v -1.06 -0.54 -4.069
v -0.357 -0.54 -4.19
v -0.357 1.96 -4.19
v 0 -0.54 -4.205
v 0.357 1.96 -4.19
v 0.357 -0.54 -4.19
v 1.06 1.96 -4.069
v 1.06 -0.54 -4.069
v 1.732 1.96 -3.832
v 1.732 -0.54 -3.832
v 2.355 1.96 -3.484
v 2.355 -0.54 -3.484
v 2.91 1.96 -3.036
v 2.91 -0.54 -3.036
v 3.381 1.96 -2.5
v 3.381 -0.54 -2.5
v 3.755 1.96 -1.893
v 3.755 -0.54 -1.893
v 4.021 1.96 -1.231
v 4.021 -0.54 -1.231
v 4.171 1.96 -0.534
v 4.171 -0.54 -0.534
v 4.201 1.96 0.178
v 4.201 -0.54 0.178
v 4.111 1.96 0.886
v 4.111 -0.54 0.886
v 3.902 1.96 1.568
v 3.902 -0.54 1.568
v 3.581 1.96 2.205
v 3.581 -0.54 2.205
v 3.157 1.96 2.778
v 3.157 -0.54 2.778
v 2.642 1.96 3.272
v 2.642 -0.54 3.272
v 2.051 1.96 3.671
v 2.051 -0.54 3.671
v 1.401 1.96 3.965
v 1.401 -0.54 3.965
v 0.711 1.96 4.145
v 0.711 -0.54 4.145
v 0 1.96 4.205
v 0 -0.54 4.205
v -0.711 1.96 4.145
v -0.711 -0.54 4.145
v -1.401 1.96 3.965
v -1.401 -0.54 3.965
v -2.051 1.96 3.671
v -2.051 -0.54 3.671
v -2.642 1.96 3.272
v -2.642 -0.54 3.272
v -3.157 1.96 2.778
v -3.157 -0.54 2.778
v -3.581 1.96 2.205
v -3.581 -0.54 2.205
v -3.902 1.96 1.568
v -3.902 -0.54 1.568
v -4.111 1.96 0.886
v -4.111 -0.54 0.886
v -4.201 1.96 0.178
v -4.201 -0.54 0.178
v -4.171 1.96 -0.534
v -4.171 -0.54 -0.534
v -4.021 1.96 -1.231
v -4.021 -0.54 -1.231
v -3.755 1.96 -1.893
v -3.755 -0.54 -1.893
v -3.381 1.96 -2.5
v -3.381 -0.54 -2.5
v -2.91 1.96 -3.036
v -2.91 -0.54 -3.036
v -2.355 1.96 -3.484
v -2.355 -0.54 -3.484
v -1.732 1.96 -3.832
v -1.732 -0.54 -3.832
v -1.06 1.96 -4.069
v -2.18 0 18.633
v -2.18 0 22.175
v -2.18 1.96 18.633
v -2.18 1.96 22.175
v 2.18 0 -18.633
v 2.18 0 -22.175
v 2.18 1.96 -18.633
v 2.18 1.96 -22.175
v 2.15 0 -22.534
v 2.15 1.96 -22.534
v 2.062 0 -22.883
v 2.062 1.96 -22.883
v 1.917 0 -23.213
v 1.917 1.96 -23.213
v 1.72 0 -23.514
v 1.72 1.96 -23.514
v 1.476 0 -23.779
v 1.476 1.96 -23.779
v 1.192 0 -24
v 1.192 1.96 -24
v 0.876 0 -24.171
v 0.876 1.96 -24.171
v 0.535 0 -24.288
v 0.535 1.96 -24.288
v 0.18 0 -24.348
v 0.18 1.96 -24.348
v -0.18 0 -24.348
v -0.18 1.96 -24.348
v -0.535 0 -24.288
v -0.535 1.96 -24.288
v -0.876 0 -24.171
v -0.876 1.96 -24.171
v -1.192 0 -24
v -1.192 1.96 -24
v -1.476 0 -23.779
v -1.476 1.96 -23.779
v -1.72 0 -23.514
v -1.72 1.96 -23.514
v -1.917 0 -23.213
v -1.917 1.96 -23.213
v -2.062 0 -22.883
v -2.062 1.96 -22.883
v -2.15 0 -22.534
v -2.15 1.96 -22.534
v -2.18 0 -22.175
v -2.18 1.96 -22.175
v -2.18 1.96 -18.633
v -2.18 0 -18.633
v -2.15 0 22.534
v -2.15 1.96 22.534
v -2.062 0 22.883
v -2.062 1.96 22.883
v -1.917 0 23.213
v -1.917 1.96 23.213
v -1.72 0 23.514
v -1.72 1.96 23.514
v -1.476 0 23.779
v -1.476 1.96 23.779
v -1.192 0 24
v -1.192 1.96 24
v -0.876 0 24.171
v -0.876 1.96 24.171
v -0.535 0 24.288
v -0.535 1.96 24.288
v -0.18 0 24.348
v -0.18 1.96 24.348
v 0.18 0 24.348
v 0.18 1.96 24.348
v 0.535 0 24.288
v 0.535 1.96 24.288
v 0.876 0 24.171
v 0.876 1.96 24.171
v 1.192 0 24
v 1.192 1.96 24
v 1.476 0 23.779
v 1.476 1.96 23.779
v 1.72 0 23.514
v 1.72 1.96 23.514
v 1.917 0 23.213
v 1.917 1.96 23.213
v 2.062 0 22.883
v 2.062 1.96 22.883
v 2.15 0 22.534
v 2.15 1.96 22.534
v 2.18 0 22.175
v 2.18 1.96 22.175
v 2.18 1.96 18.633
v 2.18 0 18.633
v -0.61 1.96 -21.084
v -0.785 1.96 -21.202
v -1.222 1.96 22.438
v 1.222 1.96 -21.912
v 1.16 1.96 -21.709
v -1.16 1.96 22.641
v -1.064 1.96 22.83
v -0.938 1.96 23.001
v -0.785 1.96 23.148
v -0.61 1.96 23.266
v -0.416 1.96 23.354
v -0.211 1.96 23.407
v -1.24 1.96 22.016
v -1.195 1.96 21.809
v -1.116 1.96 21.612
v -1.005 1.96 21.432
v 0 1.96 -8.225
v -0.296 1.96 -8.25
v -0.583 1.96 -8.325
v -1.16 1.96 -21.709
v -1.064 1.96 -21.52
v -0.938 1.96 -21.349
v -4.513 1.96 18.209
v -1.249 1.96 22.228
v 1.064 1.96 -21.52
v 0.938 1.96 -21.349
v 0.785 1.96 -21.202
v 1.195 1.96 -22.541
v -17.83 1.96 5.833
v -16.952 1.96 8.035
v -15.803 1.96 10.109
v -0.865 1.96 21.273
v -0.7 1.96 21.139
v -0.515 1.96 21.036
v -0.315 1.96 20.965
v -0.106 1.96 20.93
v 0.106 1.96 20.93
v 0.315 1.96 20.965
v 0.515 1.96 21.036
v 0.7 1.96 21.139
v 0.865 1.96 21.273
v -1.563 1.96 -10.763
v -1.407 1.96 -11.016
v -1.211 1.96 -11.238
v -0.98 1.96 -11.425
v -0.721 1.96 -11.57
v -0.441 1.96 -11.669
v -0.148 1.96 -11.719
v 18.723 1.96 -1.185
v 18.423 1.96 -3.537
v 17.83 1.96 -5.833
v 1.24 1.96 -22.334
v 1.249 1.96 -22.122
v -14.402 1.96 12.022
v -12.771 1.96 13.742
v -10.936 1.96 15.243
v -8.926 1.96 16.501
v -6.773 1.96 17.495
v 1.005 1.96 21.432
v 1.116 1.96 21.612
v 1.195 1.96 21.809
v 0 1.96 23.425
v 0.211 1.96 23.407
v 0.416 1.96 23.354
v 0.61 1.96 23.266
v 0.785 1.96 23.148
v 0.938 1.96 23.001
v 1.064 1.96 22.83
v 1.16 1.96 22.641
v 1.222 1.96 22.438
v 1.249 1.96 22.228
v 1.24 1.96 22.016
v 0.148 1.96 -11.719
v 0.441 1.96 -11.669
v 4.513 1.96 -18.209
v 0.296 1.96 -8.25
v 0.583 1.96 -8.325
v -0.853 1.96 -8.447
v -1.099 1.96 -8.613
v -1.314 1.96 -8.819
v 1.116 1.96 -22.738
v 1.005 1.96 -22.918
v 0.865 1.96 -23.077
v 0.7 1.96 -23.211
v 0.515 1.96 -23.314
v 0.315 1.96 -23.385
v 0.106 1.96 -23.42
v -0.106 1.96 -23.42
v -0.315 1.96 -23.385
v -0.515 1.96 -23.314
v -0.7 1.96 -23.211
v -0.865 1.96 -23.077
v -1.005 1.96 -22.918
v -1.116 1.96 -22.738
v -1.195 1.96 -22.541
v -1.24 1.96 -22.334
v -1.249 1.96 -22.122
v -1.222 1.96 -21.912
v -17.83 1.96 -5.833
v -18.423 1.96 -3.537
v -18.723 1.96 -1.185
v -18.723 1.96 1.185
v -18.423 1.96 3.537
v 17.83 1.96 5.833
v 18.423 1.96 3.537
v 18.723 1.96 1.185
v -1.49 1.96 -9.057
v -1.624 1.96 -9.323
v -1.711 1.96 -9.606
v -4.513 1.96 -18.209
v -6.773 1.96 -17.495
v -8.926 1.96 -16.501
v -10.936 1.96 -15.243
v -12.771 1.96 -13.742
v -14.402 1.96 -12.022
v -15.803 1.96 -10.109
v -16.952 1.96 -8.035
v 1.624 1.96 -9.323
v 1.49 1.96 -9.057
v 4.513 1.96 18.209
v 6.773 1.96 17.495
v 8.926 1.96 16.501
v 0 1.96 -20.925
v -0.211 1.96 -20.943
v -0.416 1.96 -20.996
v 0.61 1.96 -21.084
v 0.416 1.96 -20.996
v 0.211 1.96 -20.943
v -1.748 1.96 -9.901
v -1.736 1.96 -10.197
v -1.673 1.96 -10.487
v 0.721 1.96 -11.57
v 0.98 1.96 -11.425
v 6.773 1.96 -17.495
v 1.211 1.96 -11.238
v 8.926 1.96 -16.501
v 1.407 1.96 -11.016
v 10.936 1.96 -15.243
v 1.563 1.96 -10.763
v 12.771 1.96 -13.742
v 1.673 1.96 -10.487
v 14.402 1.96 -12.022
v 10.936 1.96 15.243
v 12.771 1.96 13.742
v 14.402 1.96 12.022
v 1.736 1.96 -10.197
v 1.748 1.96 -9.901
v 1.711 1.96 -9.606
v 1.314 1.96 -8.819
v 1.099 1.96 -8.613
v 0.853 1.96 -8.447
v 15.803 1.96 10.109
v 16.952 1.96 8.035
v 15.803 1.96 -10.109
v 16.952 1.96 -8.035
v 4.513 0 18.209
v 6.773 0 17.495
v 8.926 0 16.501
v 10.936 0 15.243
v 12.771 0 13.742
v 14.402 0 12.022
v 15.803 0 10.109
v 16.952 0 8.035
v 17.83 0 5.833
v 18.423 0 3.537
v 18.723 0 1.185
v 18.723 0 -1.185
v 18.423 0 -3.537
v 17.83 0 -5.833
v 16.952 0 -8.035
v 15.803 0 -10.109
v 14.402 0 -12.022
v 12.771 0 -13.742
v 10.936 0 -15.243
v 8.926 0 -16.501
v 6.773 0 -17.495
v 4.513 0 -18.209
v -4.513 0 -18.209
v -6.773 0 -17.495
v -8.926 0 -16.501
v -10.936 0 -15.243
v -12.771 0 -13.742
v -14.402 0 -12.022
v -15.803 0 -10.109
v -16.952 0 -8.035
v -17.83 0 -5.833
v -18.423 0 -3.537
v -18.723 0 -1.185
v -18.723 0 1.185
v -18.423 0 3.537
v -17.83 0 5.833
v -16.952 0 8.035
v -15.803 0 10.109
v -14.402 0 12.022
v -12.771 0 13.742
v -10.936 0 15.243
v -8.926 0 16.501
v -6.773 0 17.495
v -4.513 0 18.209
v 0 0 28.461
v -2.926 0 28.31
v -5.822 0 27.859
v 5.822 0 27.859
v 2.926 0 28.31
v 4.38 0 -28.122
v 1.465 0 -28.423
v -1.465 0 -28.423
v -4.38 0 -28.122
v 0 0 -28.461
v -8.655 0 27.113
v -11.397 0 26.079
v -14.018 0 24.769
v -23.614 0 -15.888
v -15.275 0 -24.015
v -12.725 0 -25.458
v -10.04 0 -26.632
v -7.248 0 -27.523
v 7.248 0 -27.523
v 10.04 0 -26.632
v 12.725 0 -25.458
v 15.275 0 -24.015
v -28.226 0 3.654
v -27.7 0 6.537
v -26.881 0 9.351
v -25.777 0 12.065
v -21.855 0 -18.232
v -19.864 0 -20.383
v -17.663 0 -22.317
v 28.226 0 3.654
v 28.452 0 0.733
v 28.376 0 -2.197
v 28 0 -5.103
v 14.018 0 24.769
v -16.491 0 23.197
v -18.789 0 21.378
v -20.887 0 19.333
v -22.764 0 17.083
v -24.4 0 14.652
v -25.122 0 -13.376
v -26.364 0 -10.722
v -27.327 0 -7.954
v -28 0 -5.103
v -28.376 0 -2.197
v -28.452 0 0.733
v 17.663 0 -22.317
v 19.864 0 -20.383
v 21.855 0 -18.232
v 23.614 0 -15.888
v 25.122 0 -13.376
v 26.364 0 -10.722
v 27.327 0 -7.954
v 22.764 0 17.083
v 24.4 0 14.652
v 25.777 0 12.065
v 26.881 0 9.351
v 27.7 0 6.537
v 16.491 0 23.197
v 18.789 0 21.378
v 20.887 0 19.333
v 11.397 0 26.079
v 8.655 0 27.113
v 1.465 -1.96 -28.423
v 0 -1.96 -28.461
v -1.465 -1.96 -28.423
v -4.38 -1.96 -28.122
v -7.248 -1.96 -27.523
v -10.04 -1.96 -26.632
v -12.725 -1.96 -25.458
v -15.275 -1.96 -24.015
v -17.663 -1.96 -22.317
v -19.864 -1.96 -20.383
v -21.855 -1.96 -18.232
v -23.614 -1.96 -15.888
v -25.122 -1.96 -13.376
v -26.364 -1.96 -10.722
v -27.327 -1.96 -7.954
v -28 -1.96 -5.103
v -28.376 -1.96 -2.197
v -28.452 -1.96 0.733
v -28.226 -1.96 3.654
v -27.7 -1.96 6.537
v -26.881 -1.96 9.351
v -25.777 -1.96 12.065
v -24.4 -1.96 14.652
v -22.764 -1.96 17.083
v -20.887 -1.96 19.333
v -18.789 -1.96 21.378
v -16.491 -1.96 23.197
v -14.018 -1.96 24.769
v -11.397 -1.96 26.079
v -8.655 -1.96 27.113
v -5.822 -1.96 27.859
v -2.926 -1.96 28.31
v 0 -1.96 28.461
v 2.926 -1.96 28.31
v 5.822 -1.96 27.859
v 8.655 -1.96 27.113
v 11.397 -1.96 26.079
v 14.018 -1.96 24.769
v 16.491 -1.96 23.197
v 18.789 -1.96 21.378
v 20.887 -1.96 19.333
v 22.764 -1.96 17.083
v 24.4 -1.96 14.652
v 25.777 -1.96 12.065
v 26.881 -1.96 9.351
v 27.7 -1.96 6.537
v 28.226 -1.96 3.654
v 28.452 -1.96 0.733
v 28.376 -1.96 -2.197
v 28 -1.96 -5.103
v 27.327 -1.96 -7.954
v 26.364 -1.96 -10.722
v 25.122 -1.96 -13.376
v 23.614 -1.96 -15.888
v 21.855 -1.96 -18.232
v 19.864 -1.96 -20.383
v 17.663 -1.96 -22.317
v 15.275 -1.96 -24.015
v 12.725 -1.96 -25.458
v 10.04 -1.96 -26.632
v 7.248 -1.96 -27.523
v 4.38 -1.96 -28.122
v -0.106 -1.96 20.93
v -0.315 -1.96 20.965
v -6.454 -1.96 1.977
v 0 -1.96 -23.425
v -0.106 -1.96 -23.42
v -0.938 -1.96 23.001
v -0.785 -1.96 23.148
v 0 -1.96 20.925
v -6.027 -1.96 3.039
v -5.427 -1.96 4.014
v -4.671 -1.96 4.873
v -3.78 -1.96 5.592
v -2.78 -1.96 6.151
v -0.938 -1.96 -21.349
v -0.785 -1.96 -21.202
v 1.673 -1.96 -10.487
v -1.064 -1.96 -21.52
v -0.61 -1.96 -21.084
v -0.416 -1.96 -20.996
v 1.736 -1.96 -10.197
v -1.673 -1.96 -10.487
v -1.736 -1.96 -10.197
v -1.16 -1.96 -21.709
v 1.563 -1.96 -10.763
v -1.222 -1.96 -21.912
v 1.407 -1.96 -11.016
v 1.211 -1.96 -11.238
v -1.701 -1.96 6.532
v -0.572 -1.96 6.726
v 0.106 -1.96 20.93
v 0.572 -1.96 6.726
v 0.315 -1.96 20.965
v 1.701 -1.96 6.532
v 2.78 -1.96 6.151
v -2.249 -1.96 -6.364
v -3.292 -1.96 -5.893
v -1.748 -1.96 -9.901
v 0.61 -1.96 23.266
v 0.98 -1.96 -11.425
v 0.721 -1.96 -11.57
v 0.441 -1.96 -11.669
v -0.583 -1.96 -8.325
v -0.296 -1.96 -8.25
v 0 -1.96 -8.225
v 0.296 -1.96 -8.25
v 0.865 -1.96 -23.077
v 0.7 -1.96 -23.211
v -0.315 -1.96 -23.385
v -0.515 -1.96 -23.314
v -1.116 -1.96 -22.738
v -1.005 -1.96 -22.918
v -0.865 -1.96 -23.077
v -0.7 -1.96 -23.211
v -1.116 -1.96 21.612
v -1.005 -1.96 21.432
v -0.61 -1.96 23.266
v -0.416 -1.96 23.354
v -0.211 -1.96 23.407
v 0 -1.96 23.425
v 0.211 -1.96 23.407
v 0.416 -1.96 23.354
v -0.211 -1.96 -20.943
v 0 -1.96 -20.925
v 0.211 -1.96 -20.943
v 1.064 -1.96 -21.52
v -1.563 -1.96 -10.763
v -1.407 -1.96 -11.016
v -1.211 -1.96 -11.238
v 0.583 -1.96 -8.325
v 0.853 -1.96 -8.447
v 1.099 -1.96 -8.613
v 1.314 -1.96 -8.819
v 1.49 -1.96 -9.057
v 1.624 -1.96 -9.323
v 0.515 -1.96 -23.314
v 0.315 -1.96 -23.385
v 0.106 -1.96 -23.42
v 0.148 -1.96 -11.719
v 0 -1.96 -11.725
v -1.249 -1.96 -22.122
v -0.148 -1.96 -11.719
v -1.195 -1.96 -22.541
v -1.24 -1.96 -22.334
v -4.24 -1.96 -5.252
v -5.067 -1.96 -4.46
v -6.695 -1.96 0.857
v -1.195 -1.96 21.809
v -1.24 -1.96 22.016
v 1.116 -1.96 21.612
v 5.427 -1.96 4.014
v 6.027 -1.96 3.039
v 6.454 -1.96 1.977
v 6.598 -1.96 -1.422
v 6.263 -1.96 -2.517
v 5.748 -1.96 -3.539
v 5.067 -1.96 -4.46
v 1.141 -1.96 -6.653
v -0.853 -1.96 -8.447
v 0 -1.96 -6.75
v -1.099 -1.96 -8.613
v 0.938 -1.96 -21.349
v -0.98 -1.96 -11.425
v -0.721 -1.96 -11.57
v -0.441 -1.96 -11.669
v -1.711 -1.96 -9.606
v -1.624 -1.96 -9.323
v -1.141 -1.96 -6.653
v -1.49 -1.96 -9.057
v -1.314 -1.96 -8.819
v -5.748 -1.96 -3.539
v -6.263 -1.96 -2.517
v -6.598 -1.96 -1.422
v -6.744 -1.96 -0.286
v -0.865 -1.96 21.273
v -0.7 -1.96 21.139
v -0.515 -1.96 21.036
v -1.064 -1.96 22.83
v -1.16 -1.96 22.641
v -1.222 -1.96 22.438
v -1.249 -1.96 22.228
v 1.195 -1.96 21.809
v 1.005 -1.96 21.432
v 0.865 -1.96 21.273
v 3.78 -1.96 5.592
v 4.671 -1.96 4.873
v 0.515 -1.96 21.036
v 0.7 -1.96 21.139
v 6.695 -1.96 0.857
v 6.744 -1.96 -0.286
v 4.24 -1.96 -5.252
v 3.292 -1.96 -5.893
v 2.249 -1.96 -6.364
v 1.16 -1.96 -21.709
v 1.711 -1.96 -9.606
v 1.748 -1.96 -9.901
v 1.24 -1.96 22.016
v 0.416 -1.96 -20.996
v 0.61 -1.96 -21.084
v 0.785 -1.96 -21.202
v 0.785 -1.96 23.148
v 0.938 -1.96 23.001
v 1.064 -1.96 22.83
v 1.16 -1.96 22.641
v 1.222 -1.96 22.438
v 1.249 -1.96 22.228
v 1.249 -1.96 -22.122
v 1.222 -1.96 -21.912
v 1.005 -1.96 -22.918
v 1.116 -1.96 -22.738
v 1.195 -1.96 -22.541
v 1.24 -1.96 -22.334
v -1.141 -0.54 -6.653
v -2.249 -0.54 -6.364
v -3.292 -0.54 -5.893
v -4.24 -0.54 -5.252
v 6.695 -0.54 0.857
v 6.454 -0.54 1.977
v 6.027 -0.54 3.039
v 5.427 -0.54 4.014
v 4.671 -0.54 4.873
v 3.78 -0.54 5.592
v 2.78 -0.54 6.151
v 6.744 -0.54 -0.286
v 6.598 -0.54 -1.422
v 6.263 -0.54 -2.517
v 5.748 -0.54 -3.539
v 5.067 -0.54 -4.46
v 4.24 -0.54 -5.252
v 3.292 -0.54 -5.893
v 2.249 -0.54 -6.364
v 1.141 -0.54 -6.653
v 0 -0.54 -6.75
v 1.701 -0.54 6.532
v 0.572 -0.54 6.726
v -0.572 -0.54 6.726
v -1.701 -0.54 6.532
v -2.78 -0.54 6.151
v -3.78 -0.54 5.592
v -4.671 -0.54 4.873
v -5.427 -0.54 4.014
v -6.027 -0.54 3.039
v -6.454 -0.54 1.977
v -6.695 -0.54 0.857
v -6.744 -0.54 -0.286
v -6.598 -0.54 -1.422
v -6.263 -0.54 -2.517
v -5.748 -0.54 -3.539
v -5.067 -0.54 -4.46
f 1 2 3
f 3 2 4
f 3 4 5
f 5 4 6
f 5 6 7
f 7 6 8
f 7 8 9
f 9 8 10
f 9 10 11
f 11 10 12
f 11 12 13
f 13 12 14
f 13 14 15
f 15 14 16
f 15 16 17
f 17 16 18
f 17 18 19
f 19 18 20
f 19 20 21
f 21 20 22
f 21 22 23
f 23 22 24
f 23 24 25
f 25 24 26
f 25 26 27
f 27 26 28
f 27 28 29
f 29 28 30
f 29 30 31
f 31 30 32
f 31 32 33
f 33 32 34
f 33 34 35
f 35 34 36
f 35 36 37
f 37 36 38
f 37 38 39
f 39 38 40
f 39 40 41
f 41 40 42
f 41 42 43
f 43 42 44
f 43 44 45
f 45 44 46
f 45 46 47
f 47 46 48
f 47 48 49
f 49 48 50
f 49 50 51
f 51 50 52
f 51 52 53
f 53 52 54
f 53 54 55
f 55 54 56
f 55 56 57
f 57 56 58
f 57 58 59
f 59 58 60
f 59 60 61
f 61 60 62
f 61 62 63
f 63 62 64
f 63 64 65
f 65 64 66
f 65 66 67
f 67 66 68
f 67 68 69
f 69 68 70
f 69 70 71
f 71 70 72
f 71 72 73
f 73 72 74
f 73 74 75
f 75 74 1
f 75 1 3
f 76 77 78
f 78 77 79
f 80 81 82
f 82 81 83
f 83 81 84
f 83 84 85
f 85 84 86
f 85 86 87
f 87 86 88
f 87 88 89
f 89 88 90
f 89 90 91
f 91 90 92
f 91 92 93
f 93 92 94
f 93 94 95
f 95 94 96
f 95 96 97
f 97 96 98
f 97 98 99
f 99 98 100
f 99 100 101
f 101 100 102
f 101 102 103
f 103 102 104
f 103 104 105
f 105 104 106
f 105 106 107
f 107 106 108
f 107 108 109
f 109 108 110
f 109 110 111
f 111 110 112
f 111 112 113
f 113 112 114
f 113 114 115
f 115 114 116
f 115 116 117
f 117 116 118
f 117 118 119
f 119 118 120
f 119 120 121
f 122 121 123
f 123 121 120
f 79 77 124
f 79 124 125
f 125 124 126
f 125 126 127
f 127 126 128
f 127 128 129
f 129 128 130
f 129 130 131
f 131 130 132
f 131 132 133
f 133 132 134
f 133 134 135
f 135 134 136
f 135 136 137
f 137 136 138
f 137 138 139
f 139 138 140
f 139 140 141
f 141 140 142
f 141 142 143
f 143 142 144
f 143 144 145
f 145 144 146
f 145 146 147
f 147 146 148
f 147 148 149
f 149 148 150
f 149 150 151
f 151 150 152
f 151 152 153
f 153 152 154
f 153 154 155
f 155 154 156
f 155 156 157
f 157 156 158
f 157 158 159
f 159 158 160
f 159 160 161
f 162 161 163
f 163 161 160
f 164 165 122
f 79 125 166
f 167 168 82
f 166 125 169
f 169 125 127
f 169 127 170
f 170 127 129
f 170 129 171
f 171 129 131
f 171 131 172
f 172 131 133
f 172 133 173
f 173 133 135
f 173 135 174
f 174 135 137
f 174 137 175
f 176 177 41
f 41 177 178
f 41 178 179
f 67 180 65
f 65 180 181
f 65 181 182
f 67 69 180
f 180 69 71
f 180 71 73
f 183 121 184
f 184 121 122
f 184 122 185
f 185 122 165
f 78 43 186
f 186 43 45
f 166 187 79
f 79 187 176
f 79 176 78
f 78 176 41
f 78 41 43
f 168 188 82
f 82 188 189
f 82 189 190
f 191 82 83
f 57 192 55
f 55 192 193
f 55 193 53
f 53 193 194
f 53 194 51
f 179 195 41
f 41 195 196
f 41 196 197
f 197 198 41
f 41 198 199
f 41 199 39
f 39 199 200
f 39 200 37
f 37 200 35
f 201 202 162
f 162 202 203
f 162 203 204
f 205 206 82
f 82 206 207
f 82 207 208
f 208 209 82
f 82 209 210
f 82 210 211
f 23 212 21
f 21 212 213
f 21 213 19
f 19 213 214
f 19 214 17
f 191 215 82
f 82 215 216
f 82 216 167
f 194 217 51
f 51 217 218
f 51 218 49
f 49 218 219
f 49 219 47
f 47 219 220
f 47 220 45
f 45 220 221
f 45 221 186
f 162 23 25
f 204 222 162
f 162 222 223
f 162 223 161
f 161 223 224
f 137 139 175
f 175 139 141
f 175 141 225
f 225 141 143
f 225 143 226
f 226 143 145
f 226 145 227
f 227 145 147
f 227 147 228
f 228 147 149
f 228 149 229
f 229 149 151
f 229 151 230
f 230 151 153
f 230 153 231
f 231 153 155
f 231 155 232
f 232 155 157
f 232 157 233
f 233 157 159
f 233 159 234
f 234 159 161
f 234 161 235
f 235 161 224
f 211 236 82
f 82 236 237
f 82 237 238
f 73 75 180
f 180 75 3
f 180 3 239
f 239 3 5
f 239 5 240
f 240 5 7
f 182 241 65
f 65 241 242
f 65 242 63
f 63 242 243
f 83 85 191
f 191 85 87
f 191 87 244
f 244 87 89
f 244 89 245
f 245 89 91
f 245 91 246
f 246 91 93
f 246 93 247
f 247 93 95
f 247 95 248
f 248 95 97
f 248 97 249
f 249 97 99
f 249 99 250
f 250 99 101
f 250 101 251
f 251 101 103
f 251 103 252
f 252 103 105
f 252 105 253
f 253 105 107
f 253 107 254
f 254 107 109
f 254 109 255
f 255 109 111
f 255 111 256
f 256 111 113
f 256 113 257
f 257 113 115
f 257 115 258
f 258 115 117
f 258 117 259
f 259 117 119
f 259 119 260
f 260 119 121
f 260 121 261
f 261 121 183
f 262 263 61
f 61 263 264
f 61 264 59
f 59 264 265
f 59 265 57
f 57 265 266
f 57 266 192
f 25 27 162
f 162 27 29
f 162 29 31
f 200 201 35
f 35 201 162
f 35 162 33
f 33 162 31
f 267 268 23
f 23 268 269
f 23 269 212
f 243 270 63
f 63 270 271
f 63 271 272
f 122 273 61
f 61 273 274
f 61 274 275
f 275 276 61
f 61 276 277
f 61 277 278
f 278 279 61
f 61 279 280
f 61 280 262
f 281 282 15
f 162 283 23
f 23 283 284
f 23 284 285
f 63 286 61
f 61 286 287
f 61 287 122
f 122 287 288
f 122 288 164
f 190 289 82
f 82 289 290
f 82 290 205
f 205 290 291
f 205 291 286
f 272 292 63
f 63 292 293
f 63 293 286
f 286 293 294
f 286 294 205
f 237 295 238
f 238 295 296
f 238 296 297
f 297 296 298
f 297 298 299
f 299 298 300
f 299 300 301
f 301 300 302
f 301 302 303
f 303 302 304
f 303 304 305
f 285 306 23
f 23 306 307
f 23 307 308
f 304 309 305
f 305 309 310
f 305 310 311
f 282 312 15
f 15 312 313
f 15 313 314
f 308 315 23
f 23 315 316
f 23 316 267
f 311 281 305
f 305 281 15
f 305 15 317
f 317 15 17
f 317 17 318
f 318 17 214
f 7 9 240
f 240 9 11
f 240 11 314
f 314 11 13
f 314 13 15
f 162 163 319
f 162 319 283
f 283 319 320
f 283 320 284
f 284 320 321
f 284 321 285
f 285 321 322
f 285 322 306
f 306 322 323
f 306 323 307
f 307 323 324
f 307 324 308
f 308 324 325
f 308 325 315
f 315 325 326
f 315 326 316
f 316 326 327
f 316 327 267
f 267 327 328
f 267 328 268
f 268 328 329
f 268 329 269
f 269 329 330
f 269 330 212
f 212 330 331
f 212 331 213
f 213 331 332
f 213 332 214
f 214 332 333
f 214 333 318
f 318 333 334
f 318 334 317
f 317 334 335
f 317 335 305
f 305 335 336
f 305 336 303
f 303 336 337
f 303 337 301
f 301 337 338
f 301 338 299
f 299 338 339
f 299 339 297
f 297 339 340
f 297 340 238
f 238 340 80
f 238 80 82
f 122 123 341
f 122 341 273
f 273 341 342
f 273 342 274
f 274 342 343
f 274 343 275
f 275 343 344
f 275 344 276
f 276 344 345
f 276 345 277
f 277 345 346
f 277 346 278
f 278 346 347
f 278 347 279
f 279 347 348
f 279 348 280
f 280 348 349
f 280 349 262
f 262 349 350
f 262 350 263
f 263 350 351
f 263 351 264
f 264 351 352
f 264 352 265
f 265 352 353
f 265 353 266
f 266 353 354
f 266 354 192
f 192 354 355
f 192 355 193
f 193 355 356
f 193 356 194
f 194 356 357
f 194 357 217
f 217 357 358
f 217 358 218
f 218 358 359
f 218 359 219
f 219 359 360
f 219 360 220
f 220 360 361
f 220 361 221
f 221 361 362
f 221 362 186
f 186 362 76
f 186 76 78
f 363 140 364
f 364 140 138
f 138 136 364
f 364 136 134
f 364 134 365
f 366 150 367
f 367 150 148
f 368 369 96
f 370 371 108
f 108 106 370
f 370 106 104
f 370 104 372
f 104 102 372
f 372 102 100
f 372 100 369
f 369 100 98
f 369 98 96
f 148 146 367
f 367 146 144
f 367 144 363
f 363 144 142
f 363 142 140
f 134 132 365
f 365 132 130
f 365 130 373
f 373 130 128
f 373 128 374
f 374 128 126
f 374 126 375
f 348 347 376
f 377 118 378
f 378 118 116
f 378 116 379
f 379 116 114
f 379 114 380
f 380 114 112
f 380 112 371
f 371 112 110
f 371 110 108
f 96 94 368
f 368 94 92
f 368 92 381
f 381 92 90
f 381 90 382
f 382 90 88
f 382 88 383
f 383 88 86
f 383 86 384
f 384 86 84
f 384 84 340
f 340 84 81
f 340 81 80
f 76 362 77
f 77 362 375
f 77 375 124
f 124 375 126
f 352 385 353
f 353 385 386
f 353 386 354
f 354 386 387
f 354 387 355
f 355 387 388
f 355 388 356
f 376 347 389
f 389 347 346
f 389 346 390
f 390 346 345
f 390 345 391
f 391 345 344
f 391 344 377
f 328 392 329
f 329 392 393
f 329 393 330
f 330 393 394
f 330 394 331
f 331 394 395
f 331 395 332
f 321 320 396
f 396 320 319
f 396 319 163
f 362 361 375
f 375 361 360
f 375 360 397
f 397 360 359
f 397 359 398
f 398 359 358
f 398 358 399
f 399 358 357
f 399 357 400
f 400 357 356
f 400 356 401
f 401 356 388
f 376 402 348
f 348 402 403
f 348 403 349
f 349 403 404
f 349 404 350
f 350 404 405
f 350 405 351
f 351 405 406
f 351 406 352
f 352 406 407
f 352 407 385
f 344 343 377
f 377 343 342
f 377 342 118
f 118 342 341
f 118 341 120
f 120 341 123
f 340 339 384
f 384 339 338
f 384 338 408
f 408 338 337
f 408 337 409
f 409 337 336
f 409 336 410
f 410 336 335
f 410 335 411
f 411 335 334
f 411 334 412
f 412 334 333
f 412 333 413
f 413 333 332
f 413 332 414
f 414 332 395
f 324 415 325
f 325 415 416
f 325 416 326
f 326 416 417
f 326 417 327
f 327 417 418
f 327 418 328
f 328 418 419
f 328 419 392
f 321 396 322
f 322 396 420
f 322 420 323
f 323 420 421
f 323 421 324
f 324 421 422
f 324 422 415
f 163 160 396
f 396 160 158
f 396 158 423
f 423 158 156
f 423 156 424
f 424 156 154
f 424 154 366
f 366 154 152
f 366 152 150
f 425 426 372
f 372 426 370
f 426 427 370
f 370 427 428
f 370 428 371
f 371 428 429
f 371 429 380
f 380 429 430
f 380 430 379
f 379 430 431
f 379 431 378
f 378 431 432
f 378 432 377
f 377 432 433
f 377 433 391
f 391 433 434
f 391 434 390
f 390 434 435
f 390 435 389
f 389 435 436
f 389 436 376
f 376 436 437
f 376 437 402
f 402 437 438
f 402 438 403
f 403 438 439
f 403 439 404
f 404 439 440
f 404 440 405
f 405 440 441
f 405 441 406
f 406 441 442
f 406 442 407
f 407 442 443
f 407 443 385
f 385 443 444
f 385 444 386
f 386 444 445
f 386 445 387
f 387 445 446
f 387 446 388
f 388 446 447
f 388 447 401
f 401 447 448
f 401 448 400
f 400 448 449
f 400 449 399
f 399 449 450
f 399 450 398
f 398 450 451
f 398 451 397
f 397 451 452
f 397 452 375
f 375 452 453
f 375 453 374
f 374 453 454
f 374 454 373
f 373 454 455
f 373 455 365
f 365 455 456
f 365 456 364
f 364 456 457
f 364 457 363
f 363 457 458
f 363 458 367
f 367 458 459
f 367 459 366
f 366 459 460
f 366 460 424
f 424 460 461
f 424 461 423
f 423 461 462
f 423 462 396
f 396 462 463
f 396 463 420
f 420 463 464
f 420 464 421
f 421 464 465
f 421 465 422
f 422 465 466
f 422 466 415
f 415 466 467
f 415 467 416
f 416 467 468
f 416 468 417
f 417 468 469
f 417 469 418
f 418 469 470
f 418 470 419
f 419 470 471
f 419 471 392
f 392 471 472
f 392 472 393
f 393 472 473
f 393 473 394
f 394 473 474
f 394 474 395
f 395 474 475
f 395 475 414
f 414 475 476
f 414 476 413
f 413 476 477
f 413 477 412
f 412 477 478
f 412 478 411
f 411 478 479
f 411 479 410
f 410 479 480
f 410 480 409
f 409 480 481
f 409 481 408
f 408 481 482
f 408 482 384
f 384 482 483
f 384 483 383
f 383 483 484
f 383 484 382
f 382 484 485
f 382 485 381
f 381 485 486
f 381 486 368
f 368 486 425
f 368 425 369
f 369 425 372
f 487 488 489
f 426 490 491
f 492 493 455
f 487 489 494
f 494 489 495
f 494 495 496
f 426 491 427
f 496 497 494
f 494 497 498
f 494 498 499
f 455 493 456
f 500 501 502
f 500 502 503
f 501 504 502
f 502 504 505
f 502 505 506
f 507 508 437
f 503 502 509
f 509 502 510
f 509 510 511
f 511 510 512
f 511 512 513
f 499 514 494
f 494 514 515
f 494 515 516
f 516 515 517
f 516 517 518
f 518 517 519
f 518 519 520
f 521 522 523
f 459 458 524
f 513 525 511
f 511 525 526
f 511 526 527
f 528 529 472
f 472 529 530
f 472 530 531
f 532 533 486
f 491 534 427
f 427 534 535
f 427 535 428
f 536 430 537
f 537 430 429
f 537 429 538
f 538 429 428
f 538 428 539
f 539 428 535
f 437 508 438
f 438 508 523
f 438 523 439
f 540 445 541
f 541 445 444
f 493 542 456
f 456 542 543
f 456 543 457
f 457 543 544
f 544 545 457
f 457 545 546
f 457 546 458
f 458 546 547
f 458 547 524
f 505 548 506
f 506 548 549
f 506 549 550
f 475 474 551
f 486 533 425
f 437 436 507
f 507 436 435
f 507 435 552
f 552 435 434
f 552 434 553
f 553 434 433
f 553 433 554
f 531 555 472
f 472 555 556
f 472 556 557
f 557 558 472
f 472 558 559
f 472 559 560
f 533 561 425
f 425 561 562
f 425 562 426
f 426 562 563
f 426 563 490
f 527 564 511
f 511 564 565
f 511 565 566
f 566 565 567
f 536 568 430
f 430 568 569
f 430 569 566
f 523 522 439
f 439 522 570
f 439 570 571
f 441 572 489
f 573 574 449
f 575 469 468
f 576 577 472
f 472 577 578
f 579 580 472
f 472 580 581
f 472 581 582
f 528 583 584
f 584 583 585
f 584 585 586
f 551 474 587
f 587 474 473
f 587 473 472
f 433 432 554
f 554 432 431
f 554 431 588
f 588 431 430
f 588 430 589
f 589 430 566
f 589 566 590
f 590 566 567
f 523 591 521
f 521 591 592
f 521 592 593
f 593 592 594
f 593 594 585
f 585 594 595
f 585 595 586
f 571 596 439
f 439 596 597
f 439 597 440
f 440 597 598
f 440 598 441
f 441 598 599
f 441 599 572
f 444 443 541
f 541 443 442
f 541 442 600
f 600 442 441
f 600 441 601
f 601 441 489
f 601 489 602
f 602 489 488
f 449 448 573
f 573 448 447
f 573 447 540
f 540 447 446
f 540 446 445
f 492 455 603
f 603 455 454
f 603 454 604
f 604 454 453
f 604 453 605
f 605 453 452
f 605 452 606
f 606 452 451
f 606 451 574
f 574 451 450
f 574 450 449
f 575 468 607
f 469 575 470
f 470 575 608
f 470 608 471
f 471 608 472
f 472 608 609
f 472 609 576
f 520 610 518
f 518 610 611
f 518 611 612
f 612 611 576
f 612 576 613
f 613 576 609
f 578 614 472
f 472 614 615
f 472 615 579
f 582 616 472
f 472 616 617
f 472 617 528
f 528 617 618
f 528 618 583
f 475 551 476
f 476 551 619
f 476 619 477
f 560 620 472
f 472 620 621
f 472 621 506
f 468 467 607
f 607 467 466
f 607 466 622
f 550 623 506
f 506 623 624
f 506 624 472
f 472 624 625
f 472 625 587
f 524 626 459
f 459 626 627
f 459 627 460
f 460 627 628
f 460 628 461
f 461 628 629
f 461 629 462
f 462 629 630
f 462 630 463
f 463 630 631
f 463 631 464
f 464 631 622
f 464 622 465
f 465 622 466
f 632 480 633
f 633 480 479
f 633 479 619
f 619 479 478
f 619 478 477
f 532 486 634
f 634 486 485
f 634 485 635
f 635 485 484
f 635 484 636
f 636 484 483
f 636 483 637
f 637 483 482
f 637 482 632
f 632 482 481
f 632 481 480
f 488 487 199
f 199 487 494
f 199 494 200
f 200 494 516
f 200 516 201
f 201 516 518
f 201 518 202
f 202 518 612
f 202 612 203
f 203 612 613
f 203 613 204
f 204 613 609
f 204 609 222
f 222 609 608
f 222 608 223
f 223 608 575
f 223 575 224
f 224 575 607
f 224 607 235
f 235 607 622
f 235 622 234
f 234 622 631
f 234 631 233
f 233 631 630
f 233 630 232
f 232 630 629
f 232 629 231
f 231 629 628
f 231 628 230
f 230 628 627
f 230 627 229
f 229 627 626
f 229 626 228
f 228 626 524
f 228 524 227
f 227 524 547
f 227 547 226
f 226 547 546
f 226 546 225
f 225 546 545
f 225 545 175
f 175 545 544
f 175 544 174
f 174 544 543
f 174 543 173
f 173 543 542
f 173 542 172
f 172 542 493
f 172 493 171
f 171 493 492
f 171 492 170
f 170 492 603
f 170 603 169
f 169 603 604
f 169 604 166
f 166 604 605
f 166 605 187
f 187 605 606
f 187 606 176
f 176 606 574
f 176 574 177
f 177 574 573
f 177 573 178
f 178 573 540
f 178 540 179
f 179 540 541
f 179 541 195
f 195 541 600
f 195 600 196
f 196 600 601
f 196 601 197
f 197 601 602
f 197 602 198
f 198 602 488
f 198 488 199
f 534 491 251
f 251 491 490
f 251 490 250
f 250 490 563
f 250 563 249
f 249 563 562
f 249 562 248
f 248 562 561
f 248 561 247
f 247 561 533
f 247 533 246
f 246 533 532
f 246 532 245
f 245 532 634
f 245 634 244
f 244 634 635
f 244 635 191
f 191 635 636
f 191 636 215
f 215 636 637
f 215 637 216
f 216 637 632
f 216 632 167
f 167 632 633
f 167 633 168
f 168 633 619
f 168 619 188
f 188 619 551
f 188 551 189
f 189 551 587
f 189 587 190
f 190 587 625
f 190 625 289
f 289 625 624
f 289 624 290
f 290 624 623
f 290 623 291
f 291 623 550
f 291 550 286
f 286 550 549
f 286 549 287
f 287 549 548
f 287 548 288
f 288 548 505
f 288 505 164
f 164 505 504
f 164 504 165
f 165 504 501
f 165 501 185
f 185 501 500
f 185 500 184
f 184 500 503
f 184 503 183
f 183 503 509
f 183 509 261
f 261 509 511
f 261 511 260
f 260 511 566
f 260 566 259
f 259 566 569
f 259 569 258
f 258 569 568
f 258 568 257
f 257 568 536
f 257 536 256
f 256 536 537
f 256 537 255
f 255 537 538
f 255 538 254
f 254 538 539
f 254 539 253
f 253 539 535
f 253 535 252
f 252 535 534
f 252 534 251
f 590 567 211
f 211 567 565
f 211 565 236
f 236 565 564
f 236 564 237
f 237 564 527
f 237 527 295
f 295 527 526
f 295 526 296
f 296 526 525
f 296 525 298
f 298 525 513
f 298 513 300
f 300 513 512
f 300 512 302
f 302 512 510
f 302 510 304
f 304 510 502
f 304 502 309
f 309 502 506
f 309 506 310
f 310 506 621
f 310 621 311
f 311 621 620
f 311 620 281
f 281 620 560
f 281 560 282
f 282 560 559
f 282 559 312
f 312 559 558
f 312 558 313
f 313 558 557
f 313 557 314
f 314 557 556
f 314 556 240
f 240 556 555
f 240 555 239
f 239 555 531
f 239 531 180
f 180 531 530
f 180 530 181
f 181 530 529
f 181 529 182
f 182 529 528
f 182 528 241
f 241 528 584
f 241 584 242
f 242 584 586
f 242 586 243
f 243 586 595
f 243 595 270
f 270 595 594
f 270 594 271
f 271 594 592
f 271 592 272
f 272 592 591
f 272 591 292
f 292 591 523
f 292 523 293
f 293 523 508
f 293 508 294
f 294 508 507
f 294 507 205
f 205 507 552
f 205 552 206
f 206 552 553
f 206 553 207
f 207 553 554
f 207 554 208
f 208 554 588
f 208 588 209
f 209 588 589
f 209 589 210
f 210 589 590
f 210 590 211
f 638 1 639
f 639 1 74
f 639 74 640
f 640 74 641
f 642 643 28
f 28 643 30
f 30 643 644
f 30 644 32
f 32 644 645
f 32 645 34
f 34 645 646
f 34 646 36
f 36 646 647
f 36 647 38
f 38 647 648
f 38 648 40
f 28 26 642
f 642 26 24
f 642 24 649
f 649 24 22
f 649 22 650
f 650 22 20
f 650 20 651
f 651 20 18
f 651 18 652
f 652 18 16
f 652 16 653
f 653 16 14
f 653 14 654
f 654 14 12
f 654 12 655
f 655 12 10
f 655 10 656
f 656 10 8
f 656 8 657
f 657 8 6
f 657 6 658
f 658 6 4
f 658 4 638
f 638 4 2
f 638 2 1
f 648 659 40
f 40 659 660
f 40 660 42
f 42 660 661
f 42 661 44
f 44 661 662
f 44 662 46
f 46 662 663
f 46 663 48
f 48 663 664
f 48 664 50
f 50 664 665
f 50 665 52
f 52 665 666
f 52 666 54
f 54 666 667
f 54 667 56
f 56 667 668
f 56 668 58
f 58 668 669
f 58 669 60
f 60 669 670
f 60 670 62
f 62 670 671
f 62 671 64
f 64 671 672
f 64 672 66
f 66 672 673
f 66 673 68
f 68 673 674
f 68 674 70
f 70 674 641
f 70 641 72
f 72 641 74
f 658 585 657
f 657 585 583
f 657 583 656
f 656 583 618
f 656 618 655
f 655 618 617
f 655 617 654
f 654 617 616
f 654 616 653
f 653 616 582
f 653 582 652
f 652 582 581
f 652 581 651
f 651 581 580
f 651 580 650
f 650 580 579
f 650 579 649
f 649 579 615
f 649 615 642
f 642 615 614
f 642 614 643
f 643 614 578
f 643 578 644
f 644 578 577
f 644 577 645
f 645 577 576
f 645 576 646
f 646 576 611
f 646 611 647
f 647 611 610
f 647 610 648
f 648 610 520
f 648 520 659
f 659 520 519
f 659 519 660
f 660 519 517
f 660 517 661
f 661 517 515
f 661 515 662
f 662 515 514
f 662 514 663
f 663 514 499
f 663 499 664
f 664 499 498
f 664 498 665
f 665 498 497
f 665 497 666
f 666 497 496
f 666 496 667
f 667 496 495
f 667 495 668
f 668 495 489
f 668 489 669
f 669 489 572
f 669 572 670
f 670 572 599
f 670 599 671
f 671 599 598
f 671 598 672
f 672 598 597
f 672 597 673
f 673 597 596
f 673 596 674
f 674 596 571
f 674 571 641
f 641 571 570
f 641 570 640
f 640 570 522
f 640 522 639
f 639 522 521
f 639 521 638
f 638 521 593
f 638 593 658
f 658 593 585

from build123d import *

# Parameters (mm, degrees)
BOSS_EXTRUDE1_DEPTH = 1.96
SKETCH2_R           = 18.76
BOSS_EXTRUDE2_DEPTH = 1.96
SKETCH3_R           = 28.461143805
BOSS_EXTRUDE3_DEPTH = 1.96
CUT_EXTRUDE1_REACH  = 42.441
SKETCH4_R           = 1.25
CUT_EXTRUDE2_REACH  = 42.441
SKETCH5_R           = 4.205
SKETCH5_R_2         = 1.75
SKETCH6_R           = 6.75
CUT_EXTRUDE3_DEPTH  = 1.42


with BuildPart() as part:
    # Sketch1 → Boss-Extrude1 (new body)
    with BuildSketch(Plane(origin=(0, 0, 0), x_dir=(1, 0, 0), z_dir=(0, 1, 0))):
        with BuildLine():
            Line((-2.18, 22.175), (-2.18, -22.175))
            ThreePointArc((-2.18, -22.175), (0, -24.355), (2.18, -22.175))
            Line((2.18, -22.175), (2.18, 22.175))
            ThreePointArc((2.18, 22.175), (0, 24.355), (-2.18, 22.175))
        make_face()
    extrude(amount=BOSS_EXTRUDE1_DEPTH)

    # Sketch2 → Boss-Extrude2 (add)
    with BuildSketch(Plane.XZ):
        Circle(SKETCH2_R)
    extrude(amount=-BOSS_EXTRUDE2_DEPTH)

    # Sketch3 → Boss-Extrude3 (add)
    with BuildSketch(Plane.XZ):
        with Locations(Location((0, 0, 0), (0, 0, 270))):
            Circle(SKETCH3_R)
    extrude(amount=BOSS_EXTRUDE3_DEPTH)

    # Sketch4 → Cut-Extrude1 (cut, up to next)
    with BuildSketch(Plane(origin=(0, 1.96, 0), x_dir=(1, 0, 0), z_dir=(0, 1, 0)), mode=Mode.PRIVATE) as cut_extrude1_sk1:
        with Locations(Location((0, 22.175, 0), (0, 0, 270))):
            Circle(SKETCH4_R)
    cut_extrude1_tool1 = extrude(cut_extrude1_sk1.sketch, amount=-CUT_EXTRUDE1_REACH, mode=Mode.PRIVATE) & part.part
    # Sketch4 → Cut-Extrude1 (cut, up to next)
    with BuildSketch(Plane(origin=(0, 1.96, 0), x_dir=(1, 0, 0), z_dir=(0, 1, 0)), mode=Mode.PRIVATE) as cut_extrude1_sk2:
        with Locations(Location((0, -22.175, 0), (0, 0, 270))):
            Circle(SKETCH4_R)
    cut_extrude1_tool2 = extrude(cut_extrude1_sk2.sketch, amount=-CUT_EXTRUDE1_REACH, mode=Mode.PRIVATE) & part.part
    add(cut_extrude1_tool1.solids().sort_by_distance((0, 1.96, -22.175))[0], mode=Mode.SUBTRACT)
    add(cut_extrude1_tool2.solids().sort_by_distance((0, 1.96, 22.175))[0], mode=Mode.SUBTRACT)

    # Sketch5 → Cut-Extrude2 (cut, up to next)
    with BuildSketch(Plane(origin=(0, 1.96, 0), x_dir=(1, 0, 0), z_dir=(0, 1, 0)), mode=Mode.PRIVATE) as cut_extrude2_sk1:
        with Locations(Location((0, 0, 0), (0, 0, 270))):
            Circle(SKETCH5_R)
    cut_extrude2_tool1 = extrude(cut_extrude2_sk1.sketch, amount=-CUT_EXTRUDE2_REACH, mode=Mode.PRIVATE) & part.part
    # Sketch5 → Cut-Extrude2 (cut, up to next)
    with BuildSketch(Plane(origin=(0, 1.96, 0), x_dir=(1, 0, 0), z_dir=(0, 1, 0)), mode=Mode.PRIVATE) as cut_extrude2_sk2:
        with Locations(Location((0, 9.975, 0), (0, 0, 270))):
            Circle(SKETCH5_R_2)
    cut_extrude2_tool2 = extrude(cut_extrude2_sk2.sketch, amount=-CUT_EXTRUDE2_REACH, mode=Mode.PRIVATE) & part.part
    add(cut_extrude2_tool1.solids().sort_by_distance((0, 1.96, 0))[0], mode=Mode.SUBTRACT)
    add(cut_extrude2_tool2.solids().sort_by_distance((0, 1.96, -9.975))[0], mode=Mode.SUBTRACT)

    # Sketch6 → Cut-Extrude3 (cut)
    with BuildSketch(Plane.XZ.offset(1.96)):
        with Locations(Location((0, 0, 0), (0, 0, 270))):
            Circle(SKETCH6_R)
    extrude(amount=-CUT_EXTRUDE3_DEPTH, mode=Mode.SUBTRACT)


solid = part.part
